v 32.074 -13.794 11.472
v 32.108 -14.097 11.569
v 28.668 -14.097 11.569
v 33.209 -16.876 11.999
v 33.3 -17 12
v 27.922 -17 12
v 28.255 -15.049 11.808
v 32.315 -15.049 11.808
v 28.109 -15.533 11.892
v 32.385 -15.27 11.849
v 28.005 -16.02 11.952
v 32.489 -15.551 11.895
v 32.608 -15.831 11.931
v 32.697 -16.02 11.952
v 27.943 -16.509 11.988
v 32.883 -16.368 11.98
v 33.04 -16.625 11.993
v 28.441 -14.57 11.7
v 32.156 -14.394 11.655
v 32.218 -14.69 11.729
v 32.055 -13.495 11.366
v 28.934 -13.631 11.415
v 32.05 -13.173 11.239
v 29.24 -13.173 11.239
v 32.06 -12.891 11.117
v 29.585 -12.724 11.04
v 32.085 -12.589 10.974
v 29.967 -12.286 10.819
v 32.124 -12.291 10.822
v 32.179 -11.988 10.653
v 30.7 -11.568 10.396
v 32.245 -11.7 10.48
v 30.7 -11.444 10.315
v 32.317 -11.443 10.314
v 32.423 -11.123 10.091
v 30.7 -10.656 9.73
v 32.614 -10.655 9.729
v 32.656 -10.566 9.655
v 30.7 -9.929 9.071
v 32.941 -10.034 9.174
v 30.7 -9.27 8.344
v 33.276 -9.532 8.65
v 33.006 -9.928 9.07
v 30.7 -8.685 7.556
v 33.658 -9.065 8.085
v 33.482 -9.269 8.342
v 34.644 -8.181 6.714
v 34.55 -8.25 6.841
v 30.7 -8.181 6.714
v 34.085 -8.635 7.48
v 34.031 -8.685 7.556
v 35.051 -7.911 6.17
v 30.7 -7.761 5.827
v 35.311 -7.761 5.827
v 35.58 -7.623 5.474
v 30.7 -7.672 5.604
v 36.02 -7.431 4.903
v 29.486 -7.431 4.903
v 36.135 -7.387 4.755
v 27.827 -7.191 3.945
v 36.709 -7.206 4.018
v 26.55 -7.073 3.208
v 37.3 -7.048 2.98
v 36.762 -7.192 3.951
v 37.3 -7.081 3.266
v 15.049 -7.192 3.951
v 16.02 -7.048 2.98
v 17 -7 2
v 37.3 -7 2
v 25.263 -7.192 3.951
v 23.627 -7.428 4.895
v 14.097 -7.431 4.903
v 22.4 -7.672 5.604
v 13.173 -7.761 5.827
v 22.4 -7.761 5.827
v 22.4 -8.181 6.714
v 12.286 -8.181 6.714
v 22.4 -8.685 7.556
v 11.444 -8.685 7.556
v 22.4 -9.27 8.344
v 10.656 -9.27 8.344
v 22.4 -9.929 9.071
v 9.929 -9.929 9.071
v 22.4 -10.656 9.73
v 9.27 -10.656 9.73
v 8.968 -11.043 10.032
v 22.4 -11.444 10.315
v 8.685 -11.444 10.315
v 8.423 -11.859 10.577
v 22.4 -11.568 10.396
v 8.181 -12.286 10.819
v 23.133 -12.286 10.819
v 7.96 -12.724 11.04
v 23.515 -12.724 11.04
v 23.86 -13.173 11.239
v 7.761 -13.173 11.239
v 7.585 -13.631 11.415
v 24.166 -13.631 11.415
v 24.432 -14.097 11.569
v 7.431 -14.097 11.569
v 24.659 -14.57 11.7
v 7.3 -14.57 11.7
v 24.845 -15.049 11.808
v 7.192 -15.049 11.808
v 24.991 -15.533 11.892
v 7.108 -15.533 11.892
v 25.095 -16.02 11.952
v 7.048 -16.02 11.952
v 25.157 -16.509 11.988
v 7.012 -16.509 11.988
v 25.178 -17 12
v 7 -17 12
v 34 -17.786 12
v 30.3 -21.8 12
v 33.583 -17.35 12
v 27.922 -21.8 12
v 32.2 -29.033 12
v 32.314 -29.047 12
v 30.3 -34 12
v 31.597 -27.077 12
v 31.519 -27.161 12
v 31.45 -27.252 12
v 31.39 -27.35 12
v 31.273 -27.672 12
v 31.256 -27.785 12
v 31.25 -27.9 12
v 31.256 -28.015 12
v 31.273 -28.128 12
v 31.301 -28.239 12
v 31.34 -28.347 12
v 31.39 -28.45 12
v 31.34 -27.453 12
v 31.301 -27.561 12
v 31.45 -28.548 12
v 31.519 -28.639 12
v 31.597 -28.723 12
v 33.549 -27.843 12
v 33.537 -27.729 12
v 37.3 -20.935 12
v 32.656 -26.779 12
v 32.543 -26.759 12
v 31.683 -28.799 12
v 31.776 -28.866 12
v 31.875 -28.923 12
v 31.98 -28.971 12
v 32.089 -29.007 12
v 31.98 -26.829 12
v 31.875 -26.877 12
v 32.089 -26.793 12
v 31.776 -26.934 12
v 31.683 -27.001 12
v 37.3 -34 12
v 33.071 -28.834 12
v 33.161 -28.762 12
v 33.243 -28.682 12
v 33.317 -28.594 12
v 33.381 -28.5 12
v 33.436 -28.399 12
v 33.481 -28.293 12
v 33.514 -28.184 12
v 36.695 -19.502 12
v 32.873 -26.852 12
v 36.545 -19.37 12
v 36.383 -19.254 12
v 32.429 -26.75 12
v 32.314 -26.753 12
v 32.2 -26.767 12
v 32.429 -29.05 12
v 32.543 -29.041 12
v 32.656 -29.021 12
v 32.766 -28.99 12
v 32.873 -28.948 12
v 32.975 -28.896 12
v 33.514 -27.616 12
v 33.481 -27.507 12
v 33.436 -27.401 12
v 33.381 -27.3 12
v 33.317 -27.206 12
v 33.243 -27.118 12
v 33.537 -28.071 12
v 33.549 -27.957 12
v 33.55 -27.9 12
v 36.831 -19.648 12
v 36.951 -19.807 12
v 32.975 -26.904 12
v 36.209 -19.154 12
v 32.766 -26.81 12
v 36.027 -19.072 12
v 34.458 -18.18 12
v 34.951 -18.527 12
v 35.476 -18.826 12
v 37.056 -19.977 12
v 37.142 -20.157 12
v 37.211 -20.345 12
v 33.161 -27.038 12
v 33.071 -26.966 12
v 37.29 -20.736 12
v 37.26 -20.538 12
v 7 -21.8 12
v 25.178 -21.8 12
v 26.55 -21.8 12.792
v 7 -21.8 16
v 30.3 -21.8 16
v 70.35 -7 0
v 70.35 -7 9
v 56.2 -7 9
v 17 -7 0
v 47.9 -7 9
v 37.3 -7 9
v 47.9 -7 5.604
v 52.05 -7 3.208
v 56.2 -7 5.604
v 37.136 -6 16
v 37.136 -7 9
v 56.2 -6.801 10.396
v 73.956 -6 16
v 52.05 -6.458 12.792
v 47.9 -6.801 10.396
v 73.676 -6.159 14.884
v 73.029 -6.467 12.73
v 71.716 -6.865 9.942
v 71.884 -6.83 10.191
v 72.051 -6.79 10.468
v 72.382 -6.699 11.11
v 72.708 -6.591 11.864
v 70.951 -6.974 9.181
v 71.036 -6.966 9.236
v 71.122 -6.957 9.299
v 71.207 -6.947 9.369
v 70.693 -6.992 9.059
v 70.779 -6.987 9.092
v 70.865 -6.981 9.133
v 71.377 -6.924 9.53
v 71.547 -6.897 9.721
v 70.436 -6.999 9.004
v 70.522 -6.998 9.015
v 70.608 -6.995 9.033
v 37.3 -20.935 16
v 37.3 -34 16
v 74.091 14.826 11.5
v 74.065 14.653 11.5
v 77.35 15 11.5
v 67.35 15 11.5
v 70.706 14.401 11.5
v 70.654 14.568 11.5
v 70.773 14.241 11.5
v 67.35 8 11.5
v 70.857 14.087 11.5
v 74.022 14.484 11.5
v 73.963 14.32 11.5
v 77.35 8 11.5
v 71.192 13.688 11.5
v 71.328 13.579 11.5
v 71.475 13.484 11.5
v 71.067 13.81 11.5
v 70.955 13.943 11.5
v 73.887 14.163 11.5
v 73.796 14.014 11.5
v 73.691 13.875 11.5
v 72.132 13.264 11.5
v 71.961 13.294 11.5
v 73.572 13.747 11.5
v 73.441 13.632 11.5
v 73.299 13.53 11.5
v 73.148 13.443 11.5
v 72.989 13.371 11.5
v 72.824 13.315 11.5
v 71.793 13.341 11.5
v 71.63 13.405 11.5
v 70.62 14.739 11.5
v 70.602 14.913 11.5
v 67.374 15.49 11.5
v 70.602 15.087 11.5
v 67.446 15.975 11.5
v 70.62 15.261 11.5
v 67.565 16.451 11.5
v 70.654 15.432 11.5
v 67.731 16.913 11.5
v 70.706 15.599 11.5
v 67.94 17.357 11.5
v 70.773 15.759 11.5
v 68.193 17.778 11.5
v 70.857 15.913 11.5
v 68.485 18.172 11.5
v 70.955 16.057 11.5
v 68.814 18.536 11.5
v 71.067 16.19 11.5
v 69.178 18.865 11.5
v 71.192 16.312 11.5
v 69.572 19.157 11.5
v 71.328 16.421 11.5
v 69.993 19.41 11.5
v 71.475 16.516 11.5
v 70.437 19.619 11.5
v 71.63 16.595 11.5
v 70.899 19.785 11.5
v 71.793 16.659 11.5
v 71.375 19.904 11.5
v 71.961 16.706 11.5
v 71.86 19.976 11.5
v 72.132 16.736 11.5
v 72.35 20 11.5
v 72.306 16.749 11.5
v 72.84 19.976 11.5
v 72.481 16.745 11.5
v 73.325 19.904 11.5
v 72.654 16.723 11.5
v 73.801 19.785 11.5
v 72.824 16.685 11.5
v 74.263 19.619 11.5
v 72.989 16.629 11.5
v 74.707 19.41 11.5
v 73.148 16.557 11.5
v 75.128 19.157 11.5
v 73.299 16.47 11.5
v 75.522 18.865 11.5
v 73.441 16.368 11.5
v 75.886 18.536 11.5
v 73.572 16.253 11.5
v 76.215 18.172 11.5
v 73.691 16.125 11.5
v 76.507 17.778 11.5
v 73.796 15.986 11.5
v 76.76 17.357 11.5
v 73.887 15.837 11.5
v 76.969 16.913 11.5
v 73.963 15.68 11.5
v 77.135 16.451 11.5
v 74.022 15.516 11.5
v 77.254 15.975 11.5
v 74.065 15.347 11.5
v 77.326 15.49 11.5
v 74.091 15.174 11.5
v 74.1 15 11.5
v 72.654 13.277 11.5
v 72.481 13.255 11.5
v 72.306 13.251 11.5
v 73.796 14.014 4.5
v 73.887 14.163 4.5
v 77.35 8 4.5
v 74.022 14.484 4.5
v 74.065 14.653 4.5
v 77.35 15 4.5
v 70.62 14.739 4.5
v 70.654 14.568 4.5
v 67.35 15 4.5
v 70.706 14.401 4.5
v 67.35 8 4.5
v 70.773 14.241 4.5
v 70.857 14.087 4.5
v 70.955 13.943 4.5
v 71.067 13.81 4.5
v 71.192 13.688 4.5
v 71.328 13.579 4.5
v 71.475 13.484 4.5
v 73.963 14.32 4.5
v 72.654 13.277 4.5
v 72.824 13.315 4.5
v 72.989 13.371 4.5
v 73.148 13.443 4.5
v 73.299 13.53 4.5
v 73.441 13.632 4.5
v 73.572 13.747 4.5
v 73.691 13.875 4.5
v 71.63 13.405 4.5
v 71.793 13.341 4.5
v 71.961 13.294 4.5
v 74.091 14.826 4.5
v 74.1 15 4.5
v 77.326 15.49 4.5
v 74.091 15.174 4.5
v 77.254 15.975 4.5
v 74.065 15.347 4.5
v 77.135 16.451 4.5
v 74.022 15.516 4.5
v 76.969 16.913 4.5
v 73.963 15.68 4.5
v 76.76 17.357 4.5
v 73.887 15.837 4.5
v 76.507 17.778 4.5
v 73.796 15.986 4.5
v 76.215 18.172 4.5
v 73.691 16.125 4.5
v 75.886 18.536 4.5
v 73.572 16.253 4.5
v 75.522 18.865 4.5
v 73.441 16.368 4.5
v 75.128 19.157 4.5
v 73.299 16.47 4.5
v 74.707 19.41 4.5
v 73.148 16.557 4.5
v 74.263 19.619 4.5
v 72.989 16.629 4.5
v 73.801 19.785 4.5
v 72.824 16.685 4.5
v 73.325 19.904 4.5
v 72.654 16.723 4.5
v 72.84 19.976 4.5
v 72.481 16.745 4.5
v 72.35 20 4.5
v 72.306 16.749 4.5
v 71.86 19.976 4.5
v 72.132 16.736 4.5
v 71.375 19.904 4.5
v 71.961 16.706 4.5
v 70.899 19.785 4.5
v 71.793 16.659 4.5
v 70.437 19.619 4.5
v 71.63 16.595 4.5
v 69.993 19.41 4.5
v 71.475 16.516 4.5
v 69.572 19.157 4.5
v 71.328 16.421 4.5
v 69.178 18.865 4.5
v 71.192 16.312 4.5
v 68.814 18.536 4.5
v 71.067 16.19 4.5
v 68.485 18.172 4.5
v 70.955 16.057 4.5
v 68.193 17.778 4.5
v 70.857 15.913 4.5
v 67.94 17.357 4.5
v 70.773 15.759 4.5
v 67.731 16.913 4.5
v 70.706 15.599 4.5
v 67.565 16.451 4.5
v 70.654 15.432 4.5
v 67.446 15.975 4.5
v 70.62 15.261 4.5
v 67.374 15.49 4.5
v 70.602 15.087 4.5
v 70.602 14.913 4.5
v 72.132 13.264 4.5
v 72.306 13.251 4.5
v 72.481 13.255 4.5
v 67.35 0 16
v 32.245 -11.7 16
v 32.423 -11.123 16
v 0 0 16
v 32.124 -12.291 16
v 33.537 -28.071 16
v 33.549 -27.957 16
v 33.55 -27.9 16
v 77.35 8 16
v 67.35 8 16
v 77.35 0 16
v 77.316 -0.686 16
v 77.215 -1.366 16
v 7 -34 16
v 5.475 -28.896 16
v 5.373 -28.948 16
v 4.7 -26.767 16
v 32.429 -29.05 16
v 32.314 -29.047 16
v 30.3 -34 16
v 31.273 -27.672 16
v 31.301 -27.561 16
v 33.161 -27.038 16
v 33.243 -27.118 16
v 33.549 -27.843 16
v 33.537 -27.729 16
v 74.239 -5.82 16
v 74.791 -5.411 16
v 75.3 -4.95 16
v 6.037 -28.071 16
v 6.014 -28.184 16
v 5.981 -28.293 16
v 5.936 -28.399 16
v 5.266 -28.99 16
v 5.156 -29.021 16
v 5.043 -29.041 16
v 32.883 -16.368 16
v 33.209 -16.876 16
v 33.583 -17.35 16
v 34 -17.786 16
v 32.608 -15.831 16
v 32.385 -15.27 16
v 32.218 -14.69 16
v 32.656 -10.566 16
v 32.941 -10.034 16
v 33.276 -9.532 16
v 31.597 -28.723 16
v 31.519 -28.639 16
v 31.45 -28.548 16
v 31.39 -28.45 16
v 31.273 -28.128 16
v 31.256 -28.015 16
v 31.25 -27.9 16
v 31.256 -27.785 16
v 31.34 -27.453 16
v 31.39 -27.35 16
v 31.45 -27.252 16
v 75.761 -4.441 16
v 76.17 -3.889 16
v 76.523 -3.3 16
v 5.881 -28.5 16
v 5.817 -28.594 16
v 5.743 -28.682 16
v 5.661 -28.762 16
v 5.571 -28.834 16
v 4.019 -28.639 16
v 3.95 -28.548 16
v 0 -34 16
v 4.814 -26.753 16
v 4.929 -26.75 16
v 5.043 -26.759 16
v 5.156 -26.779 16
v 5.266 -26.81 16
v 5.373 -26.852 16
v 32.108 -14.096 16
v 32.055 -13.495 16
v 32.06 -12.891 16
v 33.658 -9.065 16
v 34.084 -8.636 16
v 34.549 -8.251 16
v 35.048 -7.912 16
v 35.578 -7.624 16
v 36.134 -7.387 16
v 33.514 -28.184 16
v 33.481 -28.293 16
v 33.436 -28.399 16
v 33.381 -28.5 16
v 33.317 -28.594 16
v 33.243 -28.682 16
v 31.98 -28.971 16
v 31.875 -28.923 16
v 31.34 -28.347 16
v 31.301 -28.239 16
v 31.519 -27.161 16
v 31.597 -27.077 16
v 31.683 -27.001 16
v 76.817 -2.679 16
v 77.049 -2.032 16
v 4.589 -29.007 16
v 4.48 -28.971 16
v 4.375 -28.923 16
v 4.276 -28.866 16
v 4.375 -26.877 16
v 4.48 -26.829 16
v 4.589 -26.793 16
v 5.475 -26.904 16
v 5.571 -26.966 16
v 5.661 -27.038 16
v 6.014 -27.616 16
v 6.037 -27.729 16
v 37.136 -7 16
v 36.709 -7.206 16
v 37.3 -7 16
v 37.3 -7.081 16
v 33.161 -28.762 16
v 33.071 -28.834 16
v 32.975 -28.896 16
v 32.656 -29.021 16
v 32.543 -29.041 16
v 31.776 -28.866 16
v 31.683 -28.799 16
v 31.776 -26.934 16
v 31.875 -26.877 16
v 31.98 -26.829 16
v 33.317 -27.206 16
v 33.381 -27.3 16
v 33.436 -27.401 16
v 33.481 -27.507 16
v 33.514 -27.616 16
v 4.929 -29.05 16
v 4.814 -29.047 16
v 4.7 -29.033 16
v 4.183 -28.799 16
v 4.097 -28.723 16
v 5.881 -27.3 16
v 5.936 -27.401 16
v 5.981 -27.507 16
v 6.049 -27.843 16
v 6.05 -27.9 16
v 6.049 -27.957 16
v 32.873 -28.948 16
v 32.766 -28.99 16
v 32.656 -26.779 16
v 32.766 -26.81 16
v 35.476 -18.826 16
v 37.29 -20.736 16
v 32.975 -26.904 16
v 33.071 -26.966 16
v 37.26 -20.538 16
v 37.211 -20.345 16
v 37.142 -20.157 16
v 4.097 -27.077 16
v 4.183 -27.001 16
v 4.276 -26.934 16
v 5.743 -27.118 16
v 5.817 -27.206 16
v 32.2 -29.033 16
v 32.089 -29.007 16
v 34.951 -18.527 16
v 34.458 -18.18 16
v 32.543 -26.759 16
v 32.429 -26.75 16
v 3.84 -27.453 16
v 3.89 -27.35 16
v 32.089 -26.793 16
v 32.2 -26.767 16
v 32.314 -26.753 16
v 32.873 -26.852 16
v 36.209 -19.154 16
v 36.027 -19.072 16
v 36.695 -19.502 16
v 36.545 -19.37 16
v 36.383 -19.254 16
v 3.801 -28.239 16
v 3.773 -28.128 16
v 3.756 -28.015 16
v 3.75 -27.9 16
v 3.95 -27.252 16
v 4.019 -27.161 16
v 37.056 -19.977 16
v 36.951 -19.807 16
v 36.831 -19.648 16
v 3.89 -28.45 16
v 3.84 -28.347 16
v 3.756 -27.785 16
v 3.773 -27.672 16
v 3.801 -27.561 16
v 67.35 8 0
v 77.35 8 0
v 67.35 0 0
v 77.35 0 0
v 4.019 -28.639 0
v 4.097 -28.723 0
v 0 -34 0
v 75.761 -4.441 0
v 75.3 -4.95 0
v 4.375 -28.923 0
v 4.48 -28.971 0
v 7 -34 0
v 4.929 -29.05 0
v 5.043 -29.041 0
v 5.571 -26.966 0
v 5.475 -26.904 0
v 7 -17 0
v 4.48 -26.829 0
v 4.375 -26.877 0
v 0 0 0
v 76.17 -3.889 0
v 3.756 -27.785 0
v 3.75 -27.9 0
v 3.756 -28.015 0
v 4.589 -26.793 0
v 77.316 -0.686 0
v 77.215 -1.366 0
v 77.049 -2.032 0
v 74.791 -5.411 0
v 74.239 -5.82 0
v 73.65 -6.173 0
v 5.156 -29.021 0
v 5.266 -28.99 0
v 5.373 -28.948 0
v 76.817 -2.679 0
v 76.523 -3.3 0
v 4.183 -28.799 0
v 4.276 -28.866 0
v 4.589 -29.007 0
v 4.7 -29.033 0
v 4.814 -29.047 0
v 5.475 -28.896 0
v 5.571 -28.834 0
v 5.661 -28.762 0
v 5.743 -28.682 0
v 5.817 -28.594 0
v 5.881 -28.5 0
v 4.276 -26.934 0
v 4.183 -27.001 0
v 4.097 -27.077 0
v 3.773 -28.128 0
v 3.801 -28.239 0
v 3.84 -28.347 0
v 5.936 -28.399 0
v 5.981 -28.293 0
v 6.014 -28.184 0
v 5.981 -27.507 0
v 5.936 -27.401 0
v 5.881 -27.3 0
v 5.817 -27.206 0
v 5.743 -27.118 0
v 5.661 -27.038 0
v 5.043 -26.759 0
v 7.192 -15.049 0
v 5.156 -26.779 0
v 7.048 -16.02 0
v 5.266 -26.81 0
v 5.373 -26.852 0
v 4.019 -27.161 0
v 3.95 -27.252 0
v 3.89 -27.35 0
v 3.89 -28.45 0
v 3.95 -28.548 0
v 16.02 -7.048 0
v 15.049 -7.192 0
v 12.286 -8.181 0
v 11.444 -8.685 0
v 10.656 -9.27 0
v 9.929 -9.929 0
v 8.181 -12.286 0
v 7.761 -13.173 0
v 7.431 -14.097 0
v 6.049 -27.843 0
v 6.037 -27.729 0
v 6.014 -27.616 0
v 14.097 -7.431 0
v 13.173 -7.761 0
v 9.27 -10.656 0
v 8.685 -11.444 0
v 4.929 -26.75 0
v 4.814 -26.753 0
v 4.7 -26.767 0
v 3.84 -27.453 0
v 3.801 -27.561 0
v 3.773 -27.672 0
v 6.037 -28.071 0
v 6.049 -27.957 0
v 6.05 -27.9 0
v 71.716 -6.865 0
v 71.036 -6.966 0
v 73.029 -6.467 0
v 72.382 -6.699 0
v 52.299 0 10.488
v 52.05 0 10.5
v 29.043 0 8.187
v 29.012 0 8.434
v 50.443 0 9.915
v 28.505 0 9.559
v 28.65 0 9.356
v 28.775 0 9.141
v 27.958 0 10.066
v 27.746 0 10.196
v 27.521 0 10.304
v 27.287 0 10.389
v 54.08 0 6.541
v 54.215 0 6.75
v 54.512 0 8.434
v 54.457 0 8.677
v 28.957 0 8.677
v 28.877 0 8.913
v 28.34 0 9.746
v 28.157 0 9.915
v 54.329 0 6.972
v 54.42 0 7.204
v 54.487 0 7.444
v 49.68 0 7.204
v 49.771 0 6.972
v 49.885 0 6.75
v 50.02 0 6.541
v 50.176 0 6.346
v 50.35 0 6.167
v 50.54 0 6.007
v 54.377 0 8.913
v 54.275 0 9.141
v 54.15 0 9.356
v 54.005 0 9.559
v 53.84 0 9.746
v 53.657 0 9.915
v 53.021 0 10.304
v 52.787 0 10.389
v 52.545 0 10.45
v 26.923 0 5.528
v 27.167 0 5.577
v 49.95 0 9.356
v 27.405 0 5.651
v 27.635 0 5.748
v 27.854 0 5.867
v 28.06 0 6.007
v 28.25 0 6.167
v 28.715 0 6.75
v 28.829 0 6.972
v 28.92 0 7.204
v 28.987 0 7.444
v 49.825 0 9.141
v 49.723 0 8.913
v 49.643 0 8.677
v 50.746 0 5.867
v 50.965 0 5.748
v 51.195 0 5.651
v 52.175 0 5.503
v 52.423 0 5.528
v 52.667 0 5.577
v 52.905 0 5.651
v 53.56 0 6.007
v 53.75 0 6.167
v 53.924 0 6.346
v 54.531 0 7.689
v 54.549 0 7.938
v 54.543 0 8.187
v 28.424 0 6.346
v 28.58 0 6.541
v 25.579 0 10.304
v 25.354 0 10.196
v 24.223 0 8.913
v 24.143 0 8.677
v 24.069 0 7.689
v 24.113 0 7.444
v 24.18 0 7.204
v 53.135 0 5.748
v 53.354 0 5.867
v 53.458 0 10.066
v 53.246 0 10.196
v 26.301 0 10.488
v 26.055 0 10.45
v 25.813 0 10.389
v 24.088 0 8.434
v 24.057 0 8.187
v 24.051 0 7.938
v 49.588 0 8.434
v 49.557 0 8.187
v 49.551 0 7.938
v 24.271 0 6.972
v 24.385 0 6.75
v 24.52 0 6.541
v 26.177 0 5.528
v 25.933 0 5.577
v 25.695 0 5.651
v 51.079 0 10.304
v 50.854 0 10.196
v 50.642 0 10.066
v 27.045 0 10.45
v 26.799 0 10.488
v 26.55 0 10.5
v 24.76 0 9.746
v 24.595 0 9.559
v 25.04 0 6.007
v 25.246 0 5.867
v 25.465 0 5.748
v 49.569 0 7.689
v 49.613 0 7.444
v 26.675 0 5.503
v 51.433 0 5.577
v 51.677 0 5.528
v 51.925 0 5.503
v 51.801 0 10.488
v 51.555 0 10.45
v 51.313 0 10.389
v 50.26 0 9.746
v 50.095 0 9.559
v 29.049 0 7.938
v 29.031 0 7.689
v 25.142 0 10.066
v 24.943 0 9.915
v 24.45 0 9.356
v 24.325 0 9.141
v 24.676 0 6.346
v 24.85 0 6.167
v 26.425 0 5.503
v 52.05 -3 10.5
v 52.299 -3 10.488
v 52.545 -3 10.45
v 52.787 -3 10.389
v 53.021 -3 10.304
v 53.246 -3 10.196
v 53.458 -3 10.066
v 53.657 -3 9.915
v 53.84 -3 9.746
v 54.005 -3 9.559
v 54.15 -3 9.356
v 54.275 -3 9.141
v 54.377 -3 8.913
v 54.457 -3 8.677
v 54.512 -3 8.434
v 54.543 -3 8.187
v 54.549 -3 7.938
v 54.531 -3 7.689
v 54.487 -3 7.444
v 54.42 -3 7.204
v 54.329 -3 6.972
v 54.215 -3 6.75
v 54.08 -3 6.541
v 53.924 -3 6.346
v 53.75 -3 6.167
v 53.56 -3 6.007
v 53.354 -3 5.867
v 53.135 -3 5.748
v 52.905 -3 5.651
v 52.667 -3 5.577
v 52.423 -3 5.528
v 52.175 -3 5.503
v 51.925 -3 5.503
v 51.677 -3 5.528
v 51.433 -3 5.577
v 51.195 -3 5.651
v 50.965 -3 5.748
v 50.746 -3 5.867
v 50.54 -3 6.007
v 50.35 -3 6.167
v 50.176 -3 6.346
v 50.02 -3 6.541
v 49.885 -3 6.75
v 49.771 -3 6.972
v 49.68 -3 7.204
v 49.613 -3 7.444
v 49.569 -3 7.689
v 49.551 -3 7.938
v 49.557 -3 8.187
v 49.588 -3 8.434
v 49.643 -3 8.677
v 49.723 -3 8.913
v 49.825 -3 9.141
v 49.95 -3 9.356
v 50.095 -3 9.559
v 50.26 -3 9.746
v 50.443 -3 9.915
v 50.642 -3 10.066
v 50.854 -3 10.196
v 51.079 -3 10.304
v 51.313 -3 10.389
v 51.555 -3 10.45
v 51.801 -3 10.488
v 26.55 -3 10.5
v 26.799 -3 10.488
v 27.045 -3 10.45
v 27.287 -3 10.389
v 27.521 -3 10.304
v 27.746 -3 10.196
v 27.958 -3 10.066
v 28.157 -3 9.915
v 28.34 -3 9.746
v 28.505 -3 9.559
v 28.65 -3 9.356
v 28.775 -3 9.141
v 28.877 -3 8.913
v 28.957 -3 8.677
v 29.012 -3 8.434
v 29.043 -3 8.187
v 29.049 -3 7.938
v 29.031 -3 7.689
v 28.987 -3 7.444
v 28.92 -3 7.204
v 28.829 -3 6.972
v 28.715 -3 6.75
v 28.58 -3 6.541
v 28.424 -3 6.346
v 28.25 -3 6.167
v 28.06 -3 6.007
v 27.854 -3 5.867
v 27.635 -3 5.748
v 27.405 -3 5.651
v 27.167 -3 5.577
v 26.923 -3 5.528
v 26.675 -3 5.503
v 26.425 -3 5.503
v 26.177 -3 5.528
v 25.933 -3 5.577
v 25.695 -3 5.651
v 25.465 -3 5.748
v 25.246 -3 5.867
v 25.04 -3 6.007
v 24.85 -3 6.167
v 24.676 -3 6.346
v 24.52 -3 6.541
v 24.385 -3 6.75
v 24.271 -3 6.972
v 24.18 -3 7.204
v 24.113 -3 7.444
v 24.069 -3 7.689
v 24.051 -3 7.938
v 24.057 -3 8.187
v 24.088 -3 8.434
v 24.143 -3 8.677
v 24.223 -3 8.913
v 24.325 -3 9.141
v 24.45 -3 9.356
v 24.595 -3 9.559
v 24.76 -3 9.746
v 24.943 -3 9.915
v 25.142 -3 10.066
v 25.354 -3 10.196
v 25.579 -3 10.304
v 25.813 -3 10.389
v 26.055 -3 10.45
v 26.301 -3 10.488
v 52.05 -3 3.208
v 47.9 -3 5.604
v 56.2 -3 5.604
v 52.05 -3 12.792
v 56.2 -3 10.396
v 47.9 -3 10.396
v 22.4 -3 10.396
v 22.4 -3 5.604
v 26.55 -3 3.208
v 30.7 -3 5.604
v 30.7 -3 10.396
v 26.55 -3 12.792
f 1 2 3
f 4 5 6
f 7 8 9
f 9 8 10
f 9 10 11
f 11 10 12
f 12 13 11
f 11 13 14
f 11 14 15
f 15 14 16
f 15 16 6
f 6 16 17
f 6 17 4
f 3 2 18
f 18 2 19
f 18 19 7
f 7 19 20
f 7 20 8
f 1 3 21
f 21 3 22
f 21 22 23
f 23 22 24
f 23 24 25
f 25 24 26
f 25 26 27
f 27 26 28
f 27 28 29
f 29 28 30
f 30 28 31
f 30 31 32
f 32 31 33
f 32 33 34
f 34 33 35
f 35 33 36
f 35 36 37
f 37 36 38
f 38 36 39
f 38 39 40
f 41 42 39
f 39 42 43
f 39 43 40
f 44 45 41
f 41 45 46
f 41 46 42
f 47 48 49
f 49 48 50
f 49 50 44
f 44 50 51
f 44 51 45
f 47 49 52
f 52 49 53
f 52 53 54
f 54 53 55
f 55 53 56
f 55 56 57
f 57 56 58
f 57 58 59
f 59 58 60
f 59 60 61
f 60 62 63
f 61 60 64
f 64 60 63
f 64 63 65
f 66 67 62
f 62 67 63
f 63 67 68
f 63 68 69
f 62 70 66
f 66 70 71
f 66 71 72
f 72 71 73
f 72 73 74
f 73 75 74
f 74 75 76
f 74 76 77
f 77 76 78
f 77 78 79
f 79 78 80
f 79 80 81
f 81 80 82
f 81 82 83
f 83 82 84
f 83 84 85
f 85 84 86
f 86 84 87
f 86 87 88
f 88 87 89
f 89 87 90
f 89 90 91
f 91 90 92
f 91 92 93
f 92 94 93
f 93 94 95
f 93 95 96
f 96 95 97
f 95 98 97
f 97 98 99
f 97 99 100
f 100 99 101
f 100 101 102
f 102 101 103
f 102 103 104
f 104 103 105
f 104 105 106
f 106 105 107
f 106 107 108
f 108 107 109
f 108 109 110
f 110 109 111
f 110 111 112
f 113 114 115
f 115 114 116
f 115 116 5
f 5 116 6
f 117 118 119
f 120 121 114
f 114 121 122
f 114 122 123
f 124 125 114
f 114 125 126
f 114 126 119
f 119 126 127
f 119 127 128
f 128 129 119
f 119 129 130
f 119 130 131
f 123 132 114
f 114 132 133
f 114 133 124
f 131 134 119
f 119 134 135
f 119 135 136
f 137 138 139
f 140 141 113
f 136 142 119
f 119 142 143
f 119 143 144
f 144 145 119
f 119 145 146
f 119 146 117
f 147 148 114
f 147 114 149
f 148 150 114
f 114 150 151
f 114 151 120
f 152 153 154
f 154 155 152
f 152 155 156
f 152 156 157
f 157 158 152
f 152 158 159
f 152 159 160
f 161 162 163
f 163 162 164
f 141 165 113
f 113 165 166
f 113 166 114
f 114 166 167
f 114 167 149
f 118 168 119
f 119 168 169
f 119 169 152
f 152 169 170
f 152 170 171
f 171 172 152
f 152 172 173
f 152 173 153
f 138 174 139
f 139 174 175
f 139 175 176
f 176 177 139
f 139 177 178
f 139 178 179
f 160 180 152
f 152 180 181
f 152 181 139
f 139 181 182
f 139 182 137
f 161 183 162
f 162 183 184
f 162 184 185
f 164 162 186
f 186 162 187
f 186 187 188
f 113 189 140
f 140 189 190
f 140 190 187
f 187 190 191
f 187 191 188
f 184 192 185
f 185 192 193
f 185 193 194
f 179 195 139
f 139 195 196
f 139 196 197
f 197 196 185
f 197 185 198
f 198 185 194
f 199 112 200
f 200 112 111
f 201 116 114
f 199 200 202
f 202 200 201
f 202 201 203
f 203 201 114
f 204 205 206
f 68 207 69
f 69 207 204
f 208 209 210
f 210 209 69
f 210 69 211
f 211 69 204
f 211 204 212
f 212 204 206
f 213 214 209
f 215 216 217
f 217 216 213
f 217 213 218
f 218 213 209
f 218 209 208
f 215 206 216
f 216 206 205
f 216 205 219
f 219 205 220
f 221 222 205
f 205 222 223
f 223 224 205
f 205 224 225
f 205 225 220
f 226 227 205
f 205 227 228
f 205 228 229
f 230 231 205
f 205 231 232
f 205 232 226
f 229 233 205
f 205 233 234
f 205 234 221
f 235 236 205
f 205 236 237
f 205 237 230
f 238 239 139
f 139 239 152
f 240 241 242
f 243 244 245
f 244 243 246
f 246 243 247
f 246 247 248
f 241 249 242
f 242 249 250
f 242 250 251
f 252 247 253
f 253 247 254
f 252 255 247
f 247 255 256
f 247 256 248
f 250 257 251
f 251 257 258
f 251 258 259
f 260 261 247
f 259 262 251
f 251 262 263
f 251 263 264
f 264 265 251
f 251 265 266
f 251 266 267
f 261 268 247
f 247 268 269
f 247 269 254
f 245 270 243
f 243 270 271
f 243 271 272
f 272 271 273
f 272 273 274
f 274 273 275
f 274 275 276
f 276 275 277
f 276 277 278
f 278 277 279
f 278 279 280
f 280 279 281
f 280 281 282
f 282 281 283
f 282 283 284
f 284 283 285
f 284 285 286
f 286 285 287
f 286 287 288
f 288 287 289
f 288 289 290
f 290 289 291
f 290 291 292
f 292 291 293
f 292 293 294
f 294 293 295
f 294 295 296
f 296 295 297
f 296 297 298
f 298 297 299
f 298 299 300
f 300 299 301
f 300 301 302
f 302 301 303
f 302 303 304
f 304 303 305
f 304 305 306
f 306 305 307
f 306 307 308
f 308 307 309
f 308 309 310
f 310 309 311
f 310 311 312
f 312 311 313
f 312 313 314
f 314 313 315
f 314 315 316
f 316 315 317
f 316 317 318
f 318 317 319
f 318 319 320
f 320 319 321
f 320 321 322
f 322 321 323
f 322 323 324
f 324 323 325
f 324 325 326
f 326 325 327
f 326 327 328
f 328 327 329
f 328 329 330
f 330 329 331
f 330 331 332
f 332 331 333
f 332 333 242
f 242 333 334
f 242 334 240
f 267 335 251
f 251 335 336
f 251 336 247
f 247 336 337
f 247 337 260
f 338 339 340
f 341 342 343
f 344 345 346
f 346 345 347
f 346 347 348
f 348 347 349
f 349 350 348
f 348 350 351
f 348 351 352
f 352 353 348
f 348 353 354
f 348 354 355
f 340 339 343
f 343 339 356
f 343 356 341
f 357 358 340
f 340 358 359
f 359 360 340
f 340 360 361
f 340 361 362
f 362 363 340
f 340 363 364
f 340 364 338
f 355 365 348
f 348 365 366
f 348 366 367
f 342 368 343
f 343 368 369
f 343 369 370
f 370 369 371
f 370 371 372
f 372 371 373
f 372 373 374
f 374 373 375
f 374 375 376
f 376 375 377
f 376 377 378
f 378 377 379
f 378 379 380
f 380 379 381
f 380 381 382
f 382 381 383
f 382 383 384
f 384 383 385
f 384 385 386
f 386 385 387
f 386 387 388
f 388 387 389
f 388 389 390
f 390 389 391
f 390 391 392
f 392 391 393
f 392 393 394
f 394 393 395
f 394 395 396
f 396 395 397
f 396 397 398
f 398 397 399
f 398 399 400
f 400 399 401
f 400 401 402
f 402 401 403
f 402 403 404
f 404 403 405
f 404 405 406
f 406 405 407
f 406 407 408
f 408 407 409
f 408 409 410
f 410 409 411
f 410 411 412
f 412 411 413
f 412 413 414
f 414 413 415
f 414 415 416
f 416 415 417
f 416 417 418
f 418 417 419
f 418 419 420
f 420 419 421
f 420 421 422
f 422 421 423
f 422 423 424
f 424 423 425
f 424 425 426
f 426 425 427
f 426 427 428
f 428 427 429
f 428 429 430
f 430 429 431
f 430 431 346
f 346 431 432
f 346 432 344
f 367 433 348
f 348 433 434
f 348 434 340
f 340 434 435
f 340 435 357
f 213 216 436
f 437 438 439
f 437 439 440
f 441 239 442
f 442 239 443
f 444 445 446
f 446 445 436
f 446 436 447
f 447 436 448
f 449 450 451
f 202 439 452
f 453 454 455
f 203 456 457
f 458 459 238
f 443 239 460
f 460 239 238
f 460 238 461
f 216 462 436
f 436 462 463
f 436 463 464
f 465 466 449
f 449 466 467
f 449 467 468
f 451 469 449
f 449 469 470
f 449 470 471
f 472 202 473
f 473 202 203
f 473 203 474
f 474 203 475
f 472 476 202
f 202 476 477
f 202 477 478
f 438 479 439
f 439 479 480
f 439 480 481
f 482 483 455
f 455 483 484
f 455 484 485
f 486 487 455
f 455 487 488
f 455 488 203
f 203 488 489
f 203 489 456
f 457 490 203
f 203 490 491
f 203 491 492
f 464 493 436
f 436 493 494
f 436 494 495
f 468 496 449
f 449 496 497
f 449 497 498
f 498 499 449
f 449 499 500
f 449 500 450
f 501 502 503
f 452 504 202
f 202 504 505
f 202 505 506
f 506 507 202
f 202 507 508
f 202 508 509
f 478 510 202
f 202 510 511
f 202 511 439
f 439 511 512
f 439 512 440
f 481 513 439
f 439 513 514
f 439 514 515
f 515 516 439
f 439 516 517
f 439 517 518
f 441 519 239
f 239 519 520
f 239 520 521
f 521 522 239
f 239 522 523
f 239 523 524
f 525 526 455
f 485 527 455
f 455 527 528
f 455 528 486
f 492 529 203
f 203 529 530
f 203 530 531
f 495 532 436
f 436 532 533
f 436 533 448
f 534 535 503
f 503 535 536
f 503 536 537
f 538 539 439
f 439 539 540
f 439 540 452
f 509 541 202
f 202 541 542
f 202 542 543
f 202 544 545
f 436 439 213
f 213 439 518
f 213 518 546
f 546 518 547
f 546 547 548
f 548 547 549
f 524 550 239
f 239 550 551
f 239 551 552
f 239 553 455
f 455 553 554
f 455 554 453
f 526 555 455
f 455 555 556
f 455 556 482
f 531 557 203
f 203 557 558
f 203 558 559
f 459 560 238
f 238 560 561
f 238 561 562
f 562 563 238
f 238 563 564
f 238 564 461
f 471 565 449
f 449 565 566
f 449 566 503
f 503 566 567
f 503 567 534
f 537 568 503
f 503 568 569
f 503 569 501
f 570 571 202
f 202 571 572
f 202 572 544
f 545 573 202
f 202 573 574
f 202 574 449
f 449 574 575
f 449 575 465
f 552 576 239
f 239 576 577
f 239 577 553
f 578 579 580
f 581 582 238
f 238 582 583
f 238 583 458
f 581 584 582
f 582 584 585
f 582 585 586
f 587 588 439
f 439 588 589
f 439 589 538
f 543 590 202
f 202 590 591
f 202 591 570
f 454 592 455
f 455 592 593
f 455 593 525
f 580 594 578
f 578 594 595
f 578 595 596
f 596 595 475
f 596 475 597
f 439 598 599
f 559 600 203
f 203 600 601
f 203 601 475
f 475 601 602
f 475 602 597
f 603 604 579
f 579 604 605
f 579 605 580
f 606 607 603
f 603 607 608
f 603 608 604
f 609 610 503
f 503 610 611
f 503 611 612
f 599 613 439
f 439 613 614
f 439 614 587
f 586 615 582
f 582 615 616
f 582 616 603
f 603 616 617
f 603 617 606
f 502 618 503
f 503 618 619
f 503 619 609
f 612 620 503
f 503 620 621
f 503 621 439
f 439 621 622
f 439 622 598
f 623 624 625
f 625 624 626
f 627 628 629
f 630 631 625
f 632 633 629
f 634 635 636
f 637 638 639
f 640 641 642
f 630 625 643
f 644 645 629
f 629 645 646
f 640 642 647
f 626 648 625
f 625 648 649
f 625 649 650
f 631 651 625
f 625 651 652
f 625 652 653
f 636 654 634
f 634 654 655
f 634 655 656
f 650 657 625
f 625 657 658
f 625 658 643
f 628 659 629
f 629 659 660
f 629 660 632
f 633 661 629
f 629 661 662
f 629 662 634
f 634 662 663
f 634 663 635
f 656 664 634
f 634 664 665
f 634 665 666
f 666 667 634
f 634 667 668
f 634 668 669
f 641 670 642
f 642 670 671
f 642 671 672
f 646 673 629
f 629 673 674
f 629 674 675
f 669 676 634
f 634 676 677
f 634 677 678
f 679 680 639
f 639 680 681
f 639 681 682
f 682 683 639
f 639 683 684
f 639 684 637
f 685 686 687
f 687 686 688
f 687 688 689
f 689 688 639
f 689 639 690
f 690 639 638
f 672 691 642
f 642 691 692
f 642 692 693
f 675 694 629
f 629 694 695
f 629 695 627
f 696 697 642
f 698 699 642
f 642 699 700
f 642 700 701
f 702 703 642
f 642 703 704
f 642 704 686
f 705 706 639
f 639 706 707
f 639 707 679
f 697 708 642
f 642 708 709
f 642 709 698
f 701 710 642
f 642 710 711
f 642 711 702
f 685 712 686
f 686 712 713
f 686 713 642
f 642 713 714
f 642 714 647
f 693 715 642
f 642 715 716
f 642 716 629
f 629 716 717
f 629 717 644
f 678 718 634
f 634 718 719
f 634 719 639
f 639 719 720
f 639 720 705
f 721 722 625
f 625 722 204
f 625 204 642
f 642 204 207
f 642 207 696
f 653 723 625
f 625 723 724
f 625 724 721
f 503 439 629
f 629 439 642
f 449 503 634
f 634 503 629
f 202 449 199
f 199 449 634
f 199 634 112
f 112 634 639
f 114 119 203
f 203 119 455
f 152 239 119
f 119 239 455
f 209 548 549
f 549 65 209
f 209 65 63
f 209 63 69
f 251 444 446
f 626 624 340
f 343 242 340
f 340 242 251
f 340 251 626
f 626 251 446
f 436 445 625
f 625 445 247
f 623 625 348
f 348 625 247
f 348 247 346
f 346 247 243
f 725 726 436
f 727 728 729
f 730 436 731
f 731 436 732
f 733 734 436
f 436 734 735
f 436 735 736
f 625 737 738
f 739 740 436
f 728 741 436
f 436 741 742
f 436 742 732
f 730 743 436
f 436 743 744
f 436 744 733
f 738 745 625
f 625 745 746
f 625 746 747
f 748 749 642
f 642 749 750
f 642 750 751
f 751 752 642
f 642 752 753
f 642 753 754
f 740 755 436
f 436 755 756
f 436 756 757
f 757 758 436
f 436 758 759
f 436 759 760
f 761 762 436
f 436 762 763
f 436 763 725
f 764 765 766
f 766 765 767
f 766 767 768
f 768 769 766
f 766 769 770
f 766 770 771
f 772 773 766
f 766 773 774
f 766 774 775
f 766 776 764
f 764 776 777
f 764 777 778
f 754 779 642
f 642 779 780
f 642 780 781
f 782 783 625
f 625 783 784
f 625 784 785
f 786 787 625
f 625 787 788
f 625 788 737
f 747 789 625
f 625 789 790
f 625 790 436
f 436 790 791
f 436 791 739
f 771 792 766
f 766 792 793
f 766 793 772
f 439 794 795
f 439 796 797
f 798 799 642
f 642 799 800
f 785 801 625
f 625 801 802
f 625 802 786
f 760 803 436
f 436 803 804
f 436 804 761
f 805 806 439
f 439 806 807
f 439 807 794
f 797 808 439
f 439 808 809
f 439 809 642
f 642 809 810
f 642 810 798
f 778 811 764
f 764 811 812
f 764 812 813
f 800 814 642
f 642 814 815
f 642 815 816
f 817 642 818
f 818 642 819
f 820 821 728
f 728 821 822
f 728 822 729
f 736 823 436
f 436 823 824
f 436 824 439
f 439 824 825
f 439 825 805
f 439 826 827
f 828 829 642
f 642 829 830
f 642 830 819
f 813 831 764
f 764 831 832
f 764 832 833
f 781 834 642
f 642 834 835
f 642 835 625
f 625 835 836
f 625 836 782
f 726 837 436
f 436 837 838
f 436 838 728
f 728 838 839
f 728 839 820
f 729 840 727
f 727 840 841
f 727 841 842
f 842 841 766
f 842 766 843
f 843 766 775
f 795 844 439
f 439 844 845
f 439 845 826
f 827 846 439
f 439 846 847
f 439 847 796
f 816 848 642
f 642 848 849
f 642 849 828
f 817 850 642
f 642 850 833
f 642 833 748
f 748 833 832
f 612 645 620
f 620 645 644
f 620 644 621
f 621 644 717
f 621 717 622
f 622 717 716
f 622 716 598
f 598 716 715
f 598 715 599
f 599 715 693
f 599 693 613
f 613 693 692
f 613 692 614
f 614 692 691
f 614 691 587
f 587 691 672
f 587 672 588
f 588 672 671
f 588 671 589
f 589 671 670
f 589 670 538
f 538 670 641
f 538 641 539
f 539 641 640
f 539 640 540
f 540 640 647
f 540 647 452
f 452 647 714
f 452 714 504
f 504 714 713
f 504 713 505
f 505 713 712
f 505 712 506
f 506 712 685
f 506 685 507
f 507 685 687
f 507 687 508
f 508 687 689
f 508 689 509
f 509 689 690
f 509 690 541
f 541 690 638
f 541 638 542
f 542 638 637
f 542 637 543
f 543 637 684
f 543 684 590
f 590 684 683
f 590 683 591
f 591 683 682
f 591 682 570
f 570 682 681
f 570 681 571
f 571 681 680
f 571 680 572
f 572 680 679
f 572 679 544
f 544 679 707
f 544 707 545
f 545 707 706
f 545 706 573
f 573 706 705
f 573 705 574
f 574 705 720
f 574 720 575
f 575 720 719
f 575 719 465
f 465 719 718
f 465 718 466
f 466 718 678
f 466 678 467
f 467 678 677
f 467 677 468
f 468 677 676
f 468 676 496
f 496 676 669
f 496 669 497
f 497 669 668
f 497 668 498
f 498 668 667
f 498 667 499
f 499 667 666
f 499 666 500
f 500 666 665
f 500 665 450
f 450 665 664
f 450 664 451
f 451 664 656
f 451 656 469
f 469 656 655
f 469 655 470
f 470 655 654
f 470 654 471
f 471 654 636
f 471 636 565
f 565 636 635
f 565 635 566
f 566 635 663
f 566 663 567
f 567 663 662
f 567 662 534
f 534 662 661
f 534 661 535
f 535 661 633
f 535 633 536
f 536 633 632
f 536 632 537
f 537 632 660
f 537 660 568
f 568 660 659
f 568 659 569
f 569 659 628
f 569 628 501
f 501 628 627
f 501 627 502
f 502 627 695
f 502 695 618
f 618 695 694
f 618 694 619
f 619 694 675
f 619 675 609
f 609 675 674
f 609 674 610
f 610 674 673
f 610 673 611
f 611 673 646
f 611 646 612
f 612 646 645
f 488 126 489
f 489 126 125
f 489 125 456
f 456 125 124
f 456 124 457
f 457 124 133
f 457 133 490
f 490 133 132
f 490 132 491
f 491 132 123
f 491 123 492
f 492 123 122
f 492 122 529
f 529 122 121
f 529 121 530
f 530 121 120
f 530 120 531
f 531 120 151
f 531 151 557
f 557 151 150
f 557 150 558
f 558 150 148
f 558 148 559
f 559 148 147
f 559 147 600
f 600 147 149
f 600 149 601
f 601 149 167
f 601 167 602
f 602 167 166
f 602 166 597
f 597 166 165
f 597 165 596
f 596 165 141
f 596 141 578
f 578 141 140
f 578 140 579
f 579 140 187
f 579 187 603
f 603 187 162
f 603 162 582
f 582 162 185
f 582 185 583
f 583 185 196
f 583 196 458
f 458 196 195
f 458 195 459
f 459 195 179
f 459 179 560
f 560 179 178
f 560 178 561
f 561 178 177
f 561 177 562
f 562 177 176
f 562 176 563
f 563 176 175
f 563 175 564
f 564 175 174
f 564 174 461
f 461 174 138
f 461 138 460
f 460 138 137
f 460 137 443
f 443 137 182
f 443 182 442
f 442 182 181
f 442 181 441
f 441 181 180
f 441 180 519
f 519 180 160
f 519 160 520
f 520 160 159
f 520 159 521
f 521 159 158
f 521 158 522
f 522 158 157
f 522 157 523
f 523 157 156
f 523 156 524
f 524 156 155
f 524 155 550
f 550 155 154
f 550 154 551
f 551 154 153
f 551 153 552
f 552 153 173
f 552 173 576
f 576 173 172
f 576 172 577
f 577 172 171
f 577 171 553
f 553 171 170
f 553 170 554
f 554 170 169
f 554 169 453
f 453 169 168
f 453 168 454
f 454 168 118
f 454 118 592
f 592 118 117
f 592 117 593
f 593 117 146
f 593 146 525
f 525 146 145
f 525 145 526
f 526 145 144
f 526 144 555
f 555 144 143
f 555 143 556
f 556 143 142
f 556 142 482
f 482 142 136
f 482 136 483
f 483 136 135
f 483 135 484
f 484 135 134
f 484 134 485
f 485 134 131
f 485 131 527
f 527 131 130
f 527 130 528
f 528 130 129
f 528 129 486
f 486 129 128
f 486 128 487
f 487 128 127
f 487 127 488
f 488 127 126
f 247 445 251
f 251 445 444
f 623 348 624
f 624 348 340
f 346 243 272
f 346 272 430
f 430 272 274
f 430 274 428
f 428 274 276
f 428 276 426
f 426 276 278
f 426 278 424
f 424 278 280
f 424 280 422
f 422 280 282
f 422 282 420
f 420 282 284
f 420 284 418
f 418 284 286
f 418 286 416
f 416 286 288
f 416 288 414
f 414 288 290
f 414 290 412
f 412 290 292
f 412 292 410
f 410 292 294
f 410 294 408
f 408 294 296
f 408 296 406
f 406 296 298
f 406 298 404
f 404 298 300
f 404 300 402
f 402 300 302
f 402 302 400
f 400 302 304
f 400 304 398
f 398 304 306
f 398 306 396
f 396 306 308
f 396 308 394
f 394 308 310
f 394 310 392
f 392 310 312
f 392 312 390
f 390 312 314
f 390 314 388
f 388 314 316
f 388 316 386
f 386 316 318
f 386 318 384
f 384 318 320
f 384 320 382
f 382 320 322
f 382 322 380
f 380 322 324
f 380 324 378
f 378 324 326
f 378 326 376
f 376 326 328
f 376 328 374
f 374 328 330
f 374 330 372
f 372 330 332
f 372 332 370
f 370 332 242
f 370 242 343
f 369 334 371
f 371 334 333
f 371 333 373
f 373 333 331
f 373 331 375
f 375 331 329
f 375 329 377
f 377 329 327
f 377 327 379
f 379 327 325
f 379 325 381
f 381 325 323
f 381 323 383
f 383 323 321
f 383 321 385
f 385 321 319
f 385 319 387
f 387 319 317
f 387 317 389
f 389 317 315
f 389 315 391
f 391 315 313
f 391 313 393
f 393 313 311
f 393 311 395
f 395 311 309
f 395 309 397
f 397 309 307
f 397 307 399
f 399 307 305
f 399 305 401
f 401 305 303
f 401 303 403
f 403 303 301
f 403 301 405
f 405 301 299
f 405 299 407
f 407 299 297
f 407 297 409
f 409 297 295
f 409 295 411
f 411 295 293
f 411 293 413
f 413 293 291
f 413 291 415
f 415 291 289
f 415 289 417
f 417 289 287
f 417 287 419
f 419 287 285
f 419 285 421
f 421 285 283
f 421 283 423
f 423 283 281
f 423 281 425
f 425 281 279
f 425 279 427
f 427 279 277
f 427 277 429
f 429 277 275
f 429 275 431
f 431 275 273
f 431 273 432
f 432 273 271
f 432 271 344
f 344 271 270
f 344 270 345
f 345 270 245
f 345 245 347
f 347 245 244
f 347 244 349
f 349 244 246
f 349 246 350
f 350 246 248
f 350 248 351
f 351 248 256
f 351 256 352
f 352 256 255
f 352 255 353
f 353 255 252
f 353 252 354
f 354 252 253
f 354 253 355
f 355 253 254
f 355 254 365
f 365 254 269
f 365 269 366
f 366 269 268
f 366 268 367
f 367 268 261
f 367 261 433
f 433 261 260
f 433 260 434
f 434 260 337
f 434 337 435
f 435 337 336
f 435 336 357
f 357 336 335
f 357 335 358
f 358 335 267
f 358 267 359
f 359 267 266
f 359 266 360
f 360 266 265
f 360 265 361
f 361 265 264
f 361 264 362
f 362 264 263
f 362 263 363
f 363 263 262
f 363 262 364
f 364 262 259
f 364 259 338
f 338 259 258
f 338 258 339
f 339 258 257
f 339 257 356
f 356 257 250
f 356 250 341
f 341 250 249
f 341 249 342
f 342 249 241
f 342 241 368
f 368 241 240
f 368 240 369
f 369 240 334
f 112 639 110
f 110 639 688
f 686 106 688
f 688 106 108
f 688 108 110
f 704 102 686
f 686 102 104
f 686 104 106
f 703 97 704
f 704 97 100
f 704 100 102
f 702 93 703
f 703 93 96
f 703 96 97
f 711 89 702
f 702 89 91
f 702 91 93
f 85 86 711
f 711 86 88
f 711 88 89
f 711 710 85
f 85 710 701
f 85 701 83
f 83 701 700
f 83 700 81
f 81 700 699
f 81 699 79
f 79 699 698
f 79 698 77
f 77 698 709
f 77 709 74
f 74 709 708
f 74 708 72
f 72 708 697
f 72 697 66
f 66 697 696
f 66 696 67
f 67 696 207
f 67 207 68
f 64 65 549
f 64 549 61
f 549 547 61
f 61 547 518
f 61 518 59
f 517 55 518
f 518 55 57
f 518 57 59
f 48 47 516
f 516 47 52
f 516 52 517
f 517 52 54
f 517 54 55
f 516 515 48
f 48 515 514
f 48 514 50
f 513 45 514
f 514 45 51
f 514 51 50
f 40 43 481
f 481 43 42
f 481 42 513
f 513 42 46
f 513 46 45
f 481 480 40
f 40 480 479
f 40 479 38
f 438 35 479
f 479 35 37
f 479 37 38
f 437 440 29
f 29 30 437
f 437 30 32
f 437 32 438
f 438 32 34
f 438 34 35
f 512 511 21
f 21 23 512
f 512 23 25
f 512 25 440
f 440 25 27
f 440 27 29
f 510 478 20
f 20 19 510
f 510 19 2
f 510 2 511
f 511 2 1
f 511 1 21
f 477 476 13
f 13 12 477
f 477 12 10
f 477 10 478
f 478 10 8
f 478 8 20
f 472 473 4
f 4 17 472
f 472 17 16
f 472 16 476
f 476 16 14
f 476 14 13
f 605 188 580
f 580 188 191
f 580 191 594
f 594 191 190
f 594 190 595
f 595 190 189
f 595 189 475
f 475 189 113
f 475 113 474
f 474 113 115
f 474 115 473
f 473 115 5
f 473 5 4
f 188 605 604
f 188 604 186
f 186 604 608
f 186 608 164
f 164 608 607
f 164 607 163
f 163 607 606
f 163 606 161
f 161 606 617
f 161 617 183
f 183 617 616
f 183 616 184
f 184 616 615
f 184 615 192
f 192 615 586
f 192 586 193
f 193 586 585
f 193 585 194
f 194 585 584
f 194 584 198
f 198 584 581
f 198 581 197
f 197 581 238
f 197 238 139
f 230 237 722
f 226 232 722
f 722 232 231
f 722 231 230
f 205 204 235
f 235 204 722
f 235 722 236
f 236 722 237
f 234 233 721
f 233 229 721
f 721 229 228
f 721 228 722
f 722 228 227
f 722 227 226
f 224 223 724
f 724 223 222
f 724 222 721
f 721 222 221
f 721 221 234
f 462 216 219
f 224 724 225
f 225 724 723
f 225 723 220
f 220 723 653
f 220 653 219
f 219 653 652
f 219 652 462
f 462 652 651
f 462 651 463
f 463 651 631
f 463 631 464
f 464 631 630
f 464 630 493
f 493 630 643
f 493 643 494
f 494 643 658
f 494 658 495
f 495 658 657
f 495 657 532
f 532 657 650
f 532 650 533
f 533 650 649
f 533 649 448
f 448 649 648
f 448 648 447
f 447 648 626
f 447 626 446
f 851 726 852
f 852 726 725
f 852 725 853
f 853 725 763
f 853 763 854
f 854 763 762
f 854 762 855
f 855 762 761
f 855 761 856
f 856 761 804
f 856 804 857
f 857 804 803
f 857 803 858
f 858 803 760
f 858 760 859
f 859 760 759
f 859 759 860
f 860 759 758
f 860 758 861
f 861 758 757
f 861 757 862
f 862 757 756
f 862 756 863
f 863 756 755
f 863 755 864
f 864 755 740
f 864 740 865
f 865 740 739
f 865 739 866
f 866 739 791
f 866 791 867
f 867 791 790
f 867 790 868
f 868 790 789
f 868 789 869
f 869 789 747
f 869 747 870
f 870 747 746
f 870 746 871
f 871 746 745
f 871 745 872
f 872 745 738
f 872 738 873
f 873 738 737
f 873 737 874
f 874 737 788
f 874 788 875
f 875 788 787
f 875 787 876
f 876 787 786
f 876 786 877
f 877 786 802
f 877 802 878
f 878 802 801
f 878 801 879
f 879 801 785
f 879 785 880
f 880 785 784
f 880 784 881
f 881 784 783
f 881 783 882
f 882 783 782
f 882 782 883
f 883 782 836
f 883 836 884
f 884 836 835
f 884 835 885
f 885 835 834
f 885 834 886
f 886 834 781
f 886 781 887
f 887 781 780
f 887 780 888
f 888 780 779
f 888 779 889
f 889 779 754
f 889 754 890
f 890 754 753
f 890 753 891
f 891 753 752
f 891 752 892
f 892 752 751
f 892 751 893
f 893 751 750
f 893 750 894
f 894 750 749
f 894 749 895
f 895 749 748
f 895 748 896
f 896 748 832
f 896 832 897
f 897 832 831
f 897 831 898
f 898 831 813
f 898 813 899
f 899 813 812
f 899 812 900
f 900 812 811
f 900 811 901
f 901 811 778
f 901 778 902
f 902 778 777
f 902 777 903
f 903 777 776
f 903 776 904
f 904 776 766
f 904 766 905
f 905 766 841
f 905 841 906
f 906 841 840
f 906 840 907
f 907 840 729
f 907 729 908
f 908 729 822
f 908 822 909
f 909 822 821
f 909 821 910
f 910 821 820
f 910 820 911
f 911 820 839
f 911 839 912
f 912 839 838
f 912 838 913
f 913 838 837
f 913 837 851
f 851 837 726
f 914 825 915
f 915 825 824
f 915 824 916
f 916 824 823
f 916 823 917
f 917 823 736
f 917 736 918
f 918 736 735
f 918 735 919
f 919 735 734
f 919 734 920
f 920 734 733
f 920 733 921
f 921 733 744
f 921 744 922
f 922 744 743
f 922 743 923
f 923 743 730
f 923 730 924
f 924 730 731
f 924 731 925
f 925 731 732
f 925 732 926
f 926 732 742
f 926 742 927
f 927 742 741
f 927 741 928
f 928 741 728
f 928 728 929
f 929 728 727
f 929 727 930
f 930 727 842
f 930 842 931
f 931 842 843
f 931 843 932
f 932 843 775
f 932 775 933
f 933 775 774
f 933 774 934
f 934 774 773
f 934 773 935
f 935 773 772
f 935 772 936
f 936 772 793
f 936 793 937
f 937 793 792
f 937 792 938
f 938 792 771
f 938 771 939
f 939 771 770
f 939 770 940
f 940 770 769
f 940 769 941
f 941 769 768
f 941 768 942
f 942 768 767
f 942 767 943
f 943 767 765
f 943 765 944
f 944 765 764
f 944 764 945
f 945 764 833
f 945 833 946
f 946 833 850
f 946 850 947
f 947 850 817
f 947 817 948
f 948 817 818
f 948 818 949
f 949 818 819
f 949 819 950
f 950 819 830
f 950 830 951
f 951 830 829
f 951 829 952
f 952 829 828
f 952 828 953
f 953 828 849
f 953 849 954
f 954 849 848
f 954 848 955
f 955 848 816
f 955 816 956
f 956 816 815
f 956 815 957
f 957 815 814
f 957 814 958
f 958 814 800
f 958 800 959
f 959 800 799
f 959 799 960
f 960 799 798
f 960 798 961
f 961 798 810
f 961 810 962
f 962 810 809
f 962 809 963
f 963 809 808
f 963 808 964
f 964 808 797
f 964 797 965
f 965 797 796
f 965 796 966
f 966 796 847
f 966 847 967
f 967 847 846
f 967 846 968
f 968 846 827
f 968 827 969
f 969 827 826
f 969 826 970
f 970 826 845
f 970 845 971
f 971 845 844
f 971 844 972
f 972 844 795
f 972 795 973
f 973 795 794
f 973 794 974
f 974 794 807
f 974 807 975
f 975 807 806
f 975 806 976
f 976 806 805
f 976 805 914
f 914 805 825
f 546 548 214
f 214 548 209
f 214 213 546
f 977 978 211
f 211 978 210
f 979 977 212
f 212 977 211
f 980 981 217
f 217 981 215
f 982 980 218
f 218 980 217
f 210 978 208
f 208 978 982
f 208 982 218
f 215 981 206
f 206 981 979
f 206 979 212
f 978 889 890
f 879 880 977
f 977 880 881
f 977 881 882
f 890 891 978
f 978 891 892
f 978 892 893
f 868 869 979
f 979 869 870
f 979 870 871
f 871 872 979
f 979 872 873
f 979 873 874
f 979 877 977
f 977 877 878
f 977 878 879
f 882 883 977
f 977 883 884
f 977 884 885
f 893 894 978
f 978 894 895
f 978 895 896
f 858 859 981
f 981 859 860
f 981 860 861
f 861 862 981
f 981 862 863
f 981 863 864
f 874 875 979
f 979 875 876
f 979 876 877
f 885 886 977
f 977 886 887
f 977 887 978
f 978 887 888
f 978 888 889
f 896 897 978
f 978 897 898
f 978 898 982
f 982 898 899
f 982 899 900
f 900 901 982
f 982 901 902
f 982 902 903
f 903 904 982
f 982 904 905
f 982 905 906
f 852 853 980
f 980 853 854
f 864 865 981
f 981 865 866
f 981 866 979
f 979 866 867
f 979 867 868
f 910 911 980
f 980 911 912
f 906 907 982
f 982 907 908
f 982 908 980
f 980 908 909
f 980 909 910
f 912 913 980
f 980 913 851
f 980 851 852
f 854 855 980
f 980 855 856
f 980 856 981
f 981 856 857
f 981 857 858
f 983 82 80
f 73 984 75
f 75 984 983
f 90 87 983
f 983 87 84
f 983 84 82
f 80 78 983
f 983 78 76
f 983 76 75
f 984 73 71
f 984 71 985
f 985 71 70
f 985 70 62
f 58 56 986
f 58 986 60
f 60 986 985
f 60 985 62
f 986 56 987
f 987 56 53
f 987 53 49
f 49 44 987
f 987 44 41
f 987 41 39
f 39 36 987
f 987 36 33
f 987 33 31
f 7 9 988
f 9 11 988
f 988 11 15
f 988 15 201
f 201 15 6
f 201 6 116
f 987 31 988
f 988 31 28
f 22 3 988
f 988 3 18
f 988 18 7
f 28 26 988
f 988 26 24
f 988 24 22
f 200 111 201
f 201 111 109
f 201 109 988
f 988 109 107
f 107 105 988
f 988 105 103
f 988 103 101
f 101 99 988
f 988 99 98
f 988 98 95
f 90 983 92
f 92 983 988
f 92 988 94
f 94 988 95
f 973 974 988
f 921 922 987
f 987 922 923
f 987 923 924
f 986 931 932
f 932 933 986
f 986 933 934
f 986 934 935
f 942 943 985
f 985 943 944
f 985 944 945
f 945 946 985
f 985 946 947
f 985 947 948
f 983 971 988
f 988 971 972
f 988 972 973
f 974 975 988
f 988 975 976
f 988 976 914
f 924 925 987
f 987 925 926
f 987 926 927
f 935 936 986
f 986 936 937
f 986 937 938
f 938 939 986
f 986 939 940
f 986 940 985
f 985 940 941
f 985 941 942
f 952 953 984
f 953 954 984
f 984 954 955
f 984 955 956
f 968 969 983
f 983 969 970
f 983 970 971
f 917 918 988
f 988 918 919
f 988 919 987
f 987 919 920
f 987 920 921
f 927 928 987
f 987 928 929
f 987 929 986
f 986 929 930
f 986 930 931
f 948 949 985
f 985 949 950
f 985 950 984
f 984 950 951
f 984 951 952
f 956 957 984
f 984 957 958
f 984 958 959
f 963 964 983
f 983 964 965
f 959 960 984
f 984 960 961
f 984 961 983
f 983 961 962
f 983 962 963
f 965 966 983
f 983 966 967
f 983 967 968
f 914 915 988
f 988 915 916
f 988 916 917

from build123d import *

# Parameters (mm, degrees)
ESQUISSE1_R                = 1.15
BOSS_EXTRU_1_DEPTH         = 16
ESQUISSE5_W                = 10
ESQUISSE5_H                = 4.5
ENL_V_MAT_EXTRU_3_DEPTH    = 12
ESQUISSE6_R                = 1.75
ENL_V_MAT_EXTRU_4_DEPTH    = 86.271756755
ESQUISSE12_W               = 7
ESQUISSE12_H               = 12
ENL_V_MAT_EXTRU_7_DEPTH    = 27
ESQUISSE14_W               = 23.3
ESQUISSE14_H               = 14.8
BOSS_EXTRU_2_DEPTH         = 4
CONG_1_R                   = 10
ESQUISSE15_R               = 6.25
ENL_V_MAT_EXTRU_8_DEPTH    = 18
CONG_2_R                   = 2
CONG_3_R                   = 7
R_P_TITION_LIN_AIRE1_COUNT = 2
R_P_TITION_LIN_AIRE1_PITCH = 25.5
ENL_V_MAT_EXTRU_9_DEPTH    = 40.213671452
ENL_V_START                = -4
ENL_V_MAT_EXTRU_10_DEPTH   = 88.47468181
R_P_TITION_LIN_AIRE2_COUNT = 2
R_P_TITION_LIN_AIRE2_PITCH = 25.5


with BuildPart() as part:
    # Esquisse1 → Boss.-Extru.1 (new body)
    with BuildSketch(Plane.XY):
        Polygon((0, 0), (67.35, 0), (67.35, 20), (77.35, 20), (77.35, -7), (37.3, -7), (37.3, -34), (30.3, -34), (30.3, -7), (7, -7), (7, -34), (0, -34), align=None)
        with Locations((4.9, -27.9)):
            Circle(ESQUISSE1_R, mode=Mode.SUBTRACT)
        with Locations((32.4, -27.9)):
            Circle(ESQUISSE1_R, mode=Mode.SUBTRACT)
    extrude(amount=BOSS_EXTRU_1_DEPTH)

    # Esquisse5 → Enlèv. mat.-Extru.3 (cut)
    with BuildSketch(Plane(origin=(0, 20, 0), x_dir=(1, 0, 0), z_dir=(0, 1, 0))):
        with Locations((72.35, -2.25)):
            Rectangle(ESQUISSE5_W, ESQUISSE5_H)
        with Locations((72.35, -13.75)):
            Rectangle(ESQUISSE5_W, ESQUISSE5_H)
    extrude(amount=-ENL_V_MAT_EXTRU_3_DEPTH, mode=Mode.SUBTRACT)

    # Esquisse6 → Enlèv. mat.-Extru.4 (cut, through all)
    with BuildSketch(Plane.XY.offset(11.5)):
        with Locations((72.35, 15)):
            Circle(ESQUISSE6_R)
        with BuildLine():
            Line((67.35, 15), (65.349467458, 15))
            Line((65.349467458, 15), (65.349467458, 22.000532542))
            Line((65.349467458, 22.000532542), (79.350532542, 22.000532542))
            Line((79.350532542, 22.000532542), (79.350532542, 15))
            Line((79.350532542, 15), (77.35, 15))
            ThreePointArc((77.35, 15), (72.35, 20), (67.35, 15))
        make_face()
    extrude(amount=-ENL_V_MAT_EXTRU_4_DEPTH, mode=Mode.SUBTRACT)

    # Esquisse12 → Enlèv. mat.-Extru.7 (cut)
    with BuildSketch(Plane(origin=(0, -34, 0), x_dir=(-1, 0, 0), z_dir=(0, -1, 0))):
        with Locations((-33.8, -6)):
            Rectangle(ESQUISSE12_W, ESQUISSE12_H)
    extrude(amount=-ENL_V_MAT_EXTRU_7_DEPTH, mode=Mode.SUBTRACT)

    # Esquisse14 → Boss.-Extru.2 (add)
    with BuildSketch(Plane.XY.offset(16)):
        with Locations((18.65, -14.4)):
            Rectangle(ESQUISSE14_W, ESQUISSE14_H)
    extrude(amount=-BOSS_EXTRU_2_DEPTH)

    # Congé1
    cong_1_edges = [part.edges().sort_by_distance(p)[0] for p in [
        (22.15, -7, 12),
        (7, -7, 6),
    ]]
    fillet(cong_1_edges, radius=CONG_1_R)

    # Esquisse15 → Enlèv. mat.-Extru.8 (cut)
    with BuildSketch(Plane.XY.offset(16)):
        with Locations((38.3, -13.25)):
            Circle(ESQUISSE15_R)
    extrude(amount=-ENL_V_MAT_EXTRU_8_DEPTH, mode=Mode.SUBTRACT)

    # Congé2
    cong_2_edges = [part.edges().sort_by_distance(p)[0] for p in [
        (37.3, -19.41948134, 14),
    ]]
    fillet(cong_2_edges, radius=CONG_2_R)

    # Congé3
    cong_3_edges = [part.edges().sort_by_distance(p)[0] for p in [
        (77.35, -7, 8),
    ]]
    fillet(cong_3_edges, radius=CONG_3_R)

    # Esquisse16 → Enlèvement de matière-Révolution1 (revolve, cut)
    with BuildSketch(Plane(origin=(0, 0, 8), x_dir=(-1, 0, 0), z_dir=(0, 0, -1)), mode=Mode.PRIVATE) as enl_vement_de_mati_re_r_volution1_sk:
        Polygon((-52.05, 0), (-52.05, -7), (-52.05, -57), (-48.05, -57), (-48.05, -7), (-49.55, -5.5), (-49.55, 0), align=None)
    enl_vement_de_mati_re_r_volution1 = revolve(enl_vement_de_mati_re_r_volution1_sk.sketch.rotate(Axis((52.05, 0, 8), (0, -1, 0)), 270), axis=Axis((52.05, 0, 8), (0, -1, 0)), mode=Mode.SUBTRACT)

    # Répétition linéaire1: Enlèvement de matière-Révolution1 ×2
    with Locations(*[(-i * R_P_TITION_LIN_AIRE1_PITCH, 0, 0) for i in range(1, R_P_TITION_LIN_AIRE1_COUNT)]):
        add(enl_vement_de_mati_re_r_volution1, mode=Mode.SUBTRACT)

    # Esquisse17 → Enlèv. mat.-Extru.9 (cut)
    with BuildSketch(Plane(origin=(77.35, 0, 0), x_dir=(0, 0, -1), z_dir=(1, 0, 0))):
        Polygon((-9, -7), (-16, -6), (-16, -7), align=None)
    extrude(amount=-ENL_V_MAT_EXTRU_9_DEPTH, mode=Mode.SUBTRACT)

    # Esquisse18 → Enlèv. mat.-Extru.10 (cut)
    with BuildSketch(Plane.XZ.offset(7).offset(ENL_V_START)):
        Polygon((56.2, 10.396003617), (56.2, 5.603996383), (52.05, 3.207992766), (47.9, 5.603996383), (47.9, 10.396003617), (52.05, 12.792007234), align=None)
    enl_v_mat_extru_10 = extrude(amount=ENL_V_MAT_EXTRU_10_DEPTH, mode=Mode.SUBTRACT)

    # Répétition linéaire2: Enlèv. mat.-Extru.10 ×2
    with Locations(*[(-i * R_P_TITION_LIN_AIRE2_PITCH, 0, 0) for i in range(1, R_P_TITION_LIN_AIRE2_COUNT)]):
        add(enl_v_mat_extru_10, mode=Mode.SUBTRACT)


solid = part.part
